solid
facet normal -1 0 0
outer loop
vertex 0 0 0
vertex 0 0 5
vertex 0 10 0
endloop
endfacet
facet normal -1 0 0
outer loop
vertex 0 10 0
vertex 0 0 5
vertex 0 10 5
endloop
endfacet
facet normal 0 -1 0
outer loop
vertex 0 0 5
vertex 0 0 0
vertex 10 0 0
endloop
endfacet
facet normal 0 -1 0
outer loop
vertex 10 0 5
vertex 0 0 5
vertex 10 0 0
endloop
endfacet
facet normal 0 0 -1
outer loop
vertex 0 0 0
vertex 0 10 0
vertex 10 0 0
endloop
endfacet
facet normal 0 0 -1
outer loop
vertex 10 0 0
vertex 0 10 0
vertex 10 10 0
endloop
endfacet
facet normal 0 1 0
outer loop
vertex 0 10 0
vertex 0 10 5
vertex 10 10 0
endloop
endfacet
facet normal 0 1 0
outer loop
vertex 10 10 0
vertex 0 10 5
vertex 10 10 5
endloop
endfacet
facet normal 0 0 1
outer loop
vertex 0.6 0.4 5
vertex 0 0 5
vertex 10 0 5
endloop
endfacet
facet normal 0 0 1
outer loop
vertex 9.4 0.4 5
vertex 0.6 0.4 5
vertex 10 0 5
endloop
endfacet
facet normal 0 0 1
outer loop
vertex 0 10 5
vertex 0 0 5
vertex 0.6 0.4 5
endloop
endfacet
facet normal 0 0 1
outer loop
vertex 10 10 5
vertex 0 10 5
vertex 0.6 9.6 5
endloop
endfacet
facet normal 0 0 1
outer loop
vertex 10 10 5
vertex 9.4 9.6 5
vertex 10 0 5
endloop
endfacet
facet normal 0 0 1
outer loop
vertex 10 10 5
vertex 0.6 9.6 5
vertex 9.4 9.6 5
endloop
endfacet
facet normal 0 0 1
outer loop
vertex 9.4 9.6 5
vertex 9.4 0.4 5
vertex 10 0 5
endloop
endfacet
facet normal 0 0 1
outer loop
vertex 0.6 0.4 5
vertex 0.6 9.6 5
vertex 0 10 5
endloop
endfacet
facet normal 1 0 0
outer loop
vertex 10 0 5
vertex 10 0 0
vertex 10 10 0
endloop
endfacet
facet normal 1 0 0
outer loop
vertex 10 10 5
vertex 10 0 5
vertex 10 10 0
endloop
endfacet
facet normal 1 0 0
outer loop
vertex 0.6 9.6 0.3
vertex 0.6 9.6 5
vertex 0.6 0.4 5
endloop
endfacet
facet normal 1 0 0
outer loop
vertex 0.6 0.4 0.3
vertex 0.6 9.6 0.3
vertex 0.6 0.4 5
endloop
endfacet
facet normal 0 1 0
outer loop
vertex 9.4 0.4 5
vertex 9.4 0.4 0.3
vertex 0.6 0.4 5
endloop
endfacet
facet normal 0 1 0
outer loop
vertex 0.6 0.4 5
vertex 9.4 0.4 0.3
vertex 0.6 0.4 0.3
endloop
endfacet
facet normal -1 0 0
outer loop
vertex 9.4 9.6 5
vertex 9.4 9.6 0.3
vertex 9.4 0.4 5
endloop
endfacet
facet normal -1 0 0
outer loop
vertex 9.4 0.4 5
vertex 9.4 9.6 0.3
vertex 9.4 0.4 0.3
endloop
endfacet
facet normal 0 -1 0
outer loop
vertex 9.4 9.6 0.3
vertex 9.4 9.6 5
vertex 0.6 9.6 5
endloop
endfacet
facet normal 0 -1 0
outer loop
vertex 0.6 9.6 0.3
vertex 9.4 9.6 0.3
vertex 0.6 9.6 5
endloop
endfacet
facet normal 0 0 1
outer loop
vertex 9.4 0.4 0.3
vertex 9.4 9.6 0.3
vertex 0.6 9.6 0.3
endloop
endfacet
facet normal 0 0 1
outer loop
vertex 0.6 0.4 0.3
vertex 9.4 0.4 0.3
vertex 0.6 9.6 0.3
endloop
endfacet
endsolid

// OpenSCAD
wallX = 0.6;
wallY = 0.4;
wallZ = 0.3;

dX = 10;
dY = 10;
dZ = 5;

difference() {
cube([dX, dY, dZ]);
translate([wallX, wallY, wallZ]) cube([dX-2*wallX, dY-2*wallY, dZ]);
}
